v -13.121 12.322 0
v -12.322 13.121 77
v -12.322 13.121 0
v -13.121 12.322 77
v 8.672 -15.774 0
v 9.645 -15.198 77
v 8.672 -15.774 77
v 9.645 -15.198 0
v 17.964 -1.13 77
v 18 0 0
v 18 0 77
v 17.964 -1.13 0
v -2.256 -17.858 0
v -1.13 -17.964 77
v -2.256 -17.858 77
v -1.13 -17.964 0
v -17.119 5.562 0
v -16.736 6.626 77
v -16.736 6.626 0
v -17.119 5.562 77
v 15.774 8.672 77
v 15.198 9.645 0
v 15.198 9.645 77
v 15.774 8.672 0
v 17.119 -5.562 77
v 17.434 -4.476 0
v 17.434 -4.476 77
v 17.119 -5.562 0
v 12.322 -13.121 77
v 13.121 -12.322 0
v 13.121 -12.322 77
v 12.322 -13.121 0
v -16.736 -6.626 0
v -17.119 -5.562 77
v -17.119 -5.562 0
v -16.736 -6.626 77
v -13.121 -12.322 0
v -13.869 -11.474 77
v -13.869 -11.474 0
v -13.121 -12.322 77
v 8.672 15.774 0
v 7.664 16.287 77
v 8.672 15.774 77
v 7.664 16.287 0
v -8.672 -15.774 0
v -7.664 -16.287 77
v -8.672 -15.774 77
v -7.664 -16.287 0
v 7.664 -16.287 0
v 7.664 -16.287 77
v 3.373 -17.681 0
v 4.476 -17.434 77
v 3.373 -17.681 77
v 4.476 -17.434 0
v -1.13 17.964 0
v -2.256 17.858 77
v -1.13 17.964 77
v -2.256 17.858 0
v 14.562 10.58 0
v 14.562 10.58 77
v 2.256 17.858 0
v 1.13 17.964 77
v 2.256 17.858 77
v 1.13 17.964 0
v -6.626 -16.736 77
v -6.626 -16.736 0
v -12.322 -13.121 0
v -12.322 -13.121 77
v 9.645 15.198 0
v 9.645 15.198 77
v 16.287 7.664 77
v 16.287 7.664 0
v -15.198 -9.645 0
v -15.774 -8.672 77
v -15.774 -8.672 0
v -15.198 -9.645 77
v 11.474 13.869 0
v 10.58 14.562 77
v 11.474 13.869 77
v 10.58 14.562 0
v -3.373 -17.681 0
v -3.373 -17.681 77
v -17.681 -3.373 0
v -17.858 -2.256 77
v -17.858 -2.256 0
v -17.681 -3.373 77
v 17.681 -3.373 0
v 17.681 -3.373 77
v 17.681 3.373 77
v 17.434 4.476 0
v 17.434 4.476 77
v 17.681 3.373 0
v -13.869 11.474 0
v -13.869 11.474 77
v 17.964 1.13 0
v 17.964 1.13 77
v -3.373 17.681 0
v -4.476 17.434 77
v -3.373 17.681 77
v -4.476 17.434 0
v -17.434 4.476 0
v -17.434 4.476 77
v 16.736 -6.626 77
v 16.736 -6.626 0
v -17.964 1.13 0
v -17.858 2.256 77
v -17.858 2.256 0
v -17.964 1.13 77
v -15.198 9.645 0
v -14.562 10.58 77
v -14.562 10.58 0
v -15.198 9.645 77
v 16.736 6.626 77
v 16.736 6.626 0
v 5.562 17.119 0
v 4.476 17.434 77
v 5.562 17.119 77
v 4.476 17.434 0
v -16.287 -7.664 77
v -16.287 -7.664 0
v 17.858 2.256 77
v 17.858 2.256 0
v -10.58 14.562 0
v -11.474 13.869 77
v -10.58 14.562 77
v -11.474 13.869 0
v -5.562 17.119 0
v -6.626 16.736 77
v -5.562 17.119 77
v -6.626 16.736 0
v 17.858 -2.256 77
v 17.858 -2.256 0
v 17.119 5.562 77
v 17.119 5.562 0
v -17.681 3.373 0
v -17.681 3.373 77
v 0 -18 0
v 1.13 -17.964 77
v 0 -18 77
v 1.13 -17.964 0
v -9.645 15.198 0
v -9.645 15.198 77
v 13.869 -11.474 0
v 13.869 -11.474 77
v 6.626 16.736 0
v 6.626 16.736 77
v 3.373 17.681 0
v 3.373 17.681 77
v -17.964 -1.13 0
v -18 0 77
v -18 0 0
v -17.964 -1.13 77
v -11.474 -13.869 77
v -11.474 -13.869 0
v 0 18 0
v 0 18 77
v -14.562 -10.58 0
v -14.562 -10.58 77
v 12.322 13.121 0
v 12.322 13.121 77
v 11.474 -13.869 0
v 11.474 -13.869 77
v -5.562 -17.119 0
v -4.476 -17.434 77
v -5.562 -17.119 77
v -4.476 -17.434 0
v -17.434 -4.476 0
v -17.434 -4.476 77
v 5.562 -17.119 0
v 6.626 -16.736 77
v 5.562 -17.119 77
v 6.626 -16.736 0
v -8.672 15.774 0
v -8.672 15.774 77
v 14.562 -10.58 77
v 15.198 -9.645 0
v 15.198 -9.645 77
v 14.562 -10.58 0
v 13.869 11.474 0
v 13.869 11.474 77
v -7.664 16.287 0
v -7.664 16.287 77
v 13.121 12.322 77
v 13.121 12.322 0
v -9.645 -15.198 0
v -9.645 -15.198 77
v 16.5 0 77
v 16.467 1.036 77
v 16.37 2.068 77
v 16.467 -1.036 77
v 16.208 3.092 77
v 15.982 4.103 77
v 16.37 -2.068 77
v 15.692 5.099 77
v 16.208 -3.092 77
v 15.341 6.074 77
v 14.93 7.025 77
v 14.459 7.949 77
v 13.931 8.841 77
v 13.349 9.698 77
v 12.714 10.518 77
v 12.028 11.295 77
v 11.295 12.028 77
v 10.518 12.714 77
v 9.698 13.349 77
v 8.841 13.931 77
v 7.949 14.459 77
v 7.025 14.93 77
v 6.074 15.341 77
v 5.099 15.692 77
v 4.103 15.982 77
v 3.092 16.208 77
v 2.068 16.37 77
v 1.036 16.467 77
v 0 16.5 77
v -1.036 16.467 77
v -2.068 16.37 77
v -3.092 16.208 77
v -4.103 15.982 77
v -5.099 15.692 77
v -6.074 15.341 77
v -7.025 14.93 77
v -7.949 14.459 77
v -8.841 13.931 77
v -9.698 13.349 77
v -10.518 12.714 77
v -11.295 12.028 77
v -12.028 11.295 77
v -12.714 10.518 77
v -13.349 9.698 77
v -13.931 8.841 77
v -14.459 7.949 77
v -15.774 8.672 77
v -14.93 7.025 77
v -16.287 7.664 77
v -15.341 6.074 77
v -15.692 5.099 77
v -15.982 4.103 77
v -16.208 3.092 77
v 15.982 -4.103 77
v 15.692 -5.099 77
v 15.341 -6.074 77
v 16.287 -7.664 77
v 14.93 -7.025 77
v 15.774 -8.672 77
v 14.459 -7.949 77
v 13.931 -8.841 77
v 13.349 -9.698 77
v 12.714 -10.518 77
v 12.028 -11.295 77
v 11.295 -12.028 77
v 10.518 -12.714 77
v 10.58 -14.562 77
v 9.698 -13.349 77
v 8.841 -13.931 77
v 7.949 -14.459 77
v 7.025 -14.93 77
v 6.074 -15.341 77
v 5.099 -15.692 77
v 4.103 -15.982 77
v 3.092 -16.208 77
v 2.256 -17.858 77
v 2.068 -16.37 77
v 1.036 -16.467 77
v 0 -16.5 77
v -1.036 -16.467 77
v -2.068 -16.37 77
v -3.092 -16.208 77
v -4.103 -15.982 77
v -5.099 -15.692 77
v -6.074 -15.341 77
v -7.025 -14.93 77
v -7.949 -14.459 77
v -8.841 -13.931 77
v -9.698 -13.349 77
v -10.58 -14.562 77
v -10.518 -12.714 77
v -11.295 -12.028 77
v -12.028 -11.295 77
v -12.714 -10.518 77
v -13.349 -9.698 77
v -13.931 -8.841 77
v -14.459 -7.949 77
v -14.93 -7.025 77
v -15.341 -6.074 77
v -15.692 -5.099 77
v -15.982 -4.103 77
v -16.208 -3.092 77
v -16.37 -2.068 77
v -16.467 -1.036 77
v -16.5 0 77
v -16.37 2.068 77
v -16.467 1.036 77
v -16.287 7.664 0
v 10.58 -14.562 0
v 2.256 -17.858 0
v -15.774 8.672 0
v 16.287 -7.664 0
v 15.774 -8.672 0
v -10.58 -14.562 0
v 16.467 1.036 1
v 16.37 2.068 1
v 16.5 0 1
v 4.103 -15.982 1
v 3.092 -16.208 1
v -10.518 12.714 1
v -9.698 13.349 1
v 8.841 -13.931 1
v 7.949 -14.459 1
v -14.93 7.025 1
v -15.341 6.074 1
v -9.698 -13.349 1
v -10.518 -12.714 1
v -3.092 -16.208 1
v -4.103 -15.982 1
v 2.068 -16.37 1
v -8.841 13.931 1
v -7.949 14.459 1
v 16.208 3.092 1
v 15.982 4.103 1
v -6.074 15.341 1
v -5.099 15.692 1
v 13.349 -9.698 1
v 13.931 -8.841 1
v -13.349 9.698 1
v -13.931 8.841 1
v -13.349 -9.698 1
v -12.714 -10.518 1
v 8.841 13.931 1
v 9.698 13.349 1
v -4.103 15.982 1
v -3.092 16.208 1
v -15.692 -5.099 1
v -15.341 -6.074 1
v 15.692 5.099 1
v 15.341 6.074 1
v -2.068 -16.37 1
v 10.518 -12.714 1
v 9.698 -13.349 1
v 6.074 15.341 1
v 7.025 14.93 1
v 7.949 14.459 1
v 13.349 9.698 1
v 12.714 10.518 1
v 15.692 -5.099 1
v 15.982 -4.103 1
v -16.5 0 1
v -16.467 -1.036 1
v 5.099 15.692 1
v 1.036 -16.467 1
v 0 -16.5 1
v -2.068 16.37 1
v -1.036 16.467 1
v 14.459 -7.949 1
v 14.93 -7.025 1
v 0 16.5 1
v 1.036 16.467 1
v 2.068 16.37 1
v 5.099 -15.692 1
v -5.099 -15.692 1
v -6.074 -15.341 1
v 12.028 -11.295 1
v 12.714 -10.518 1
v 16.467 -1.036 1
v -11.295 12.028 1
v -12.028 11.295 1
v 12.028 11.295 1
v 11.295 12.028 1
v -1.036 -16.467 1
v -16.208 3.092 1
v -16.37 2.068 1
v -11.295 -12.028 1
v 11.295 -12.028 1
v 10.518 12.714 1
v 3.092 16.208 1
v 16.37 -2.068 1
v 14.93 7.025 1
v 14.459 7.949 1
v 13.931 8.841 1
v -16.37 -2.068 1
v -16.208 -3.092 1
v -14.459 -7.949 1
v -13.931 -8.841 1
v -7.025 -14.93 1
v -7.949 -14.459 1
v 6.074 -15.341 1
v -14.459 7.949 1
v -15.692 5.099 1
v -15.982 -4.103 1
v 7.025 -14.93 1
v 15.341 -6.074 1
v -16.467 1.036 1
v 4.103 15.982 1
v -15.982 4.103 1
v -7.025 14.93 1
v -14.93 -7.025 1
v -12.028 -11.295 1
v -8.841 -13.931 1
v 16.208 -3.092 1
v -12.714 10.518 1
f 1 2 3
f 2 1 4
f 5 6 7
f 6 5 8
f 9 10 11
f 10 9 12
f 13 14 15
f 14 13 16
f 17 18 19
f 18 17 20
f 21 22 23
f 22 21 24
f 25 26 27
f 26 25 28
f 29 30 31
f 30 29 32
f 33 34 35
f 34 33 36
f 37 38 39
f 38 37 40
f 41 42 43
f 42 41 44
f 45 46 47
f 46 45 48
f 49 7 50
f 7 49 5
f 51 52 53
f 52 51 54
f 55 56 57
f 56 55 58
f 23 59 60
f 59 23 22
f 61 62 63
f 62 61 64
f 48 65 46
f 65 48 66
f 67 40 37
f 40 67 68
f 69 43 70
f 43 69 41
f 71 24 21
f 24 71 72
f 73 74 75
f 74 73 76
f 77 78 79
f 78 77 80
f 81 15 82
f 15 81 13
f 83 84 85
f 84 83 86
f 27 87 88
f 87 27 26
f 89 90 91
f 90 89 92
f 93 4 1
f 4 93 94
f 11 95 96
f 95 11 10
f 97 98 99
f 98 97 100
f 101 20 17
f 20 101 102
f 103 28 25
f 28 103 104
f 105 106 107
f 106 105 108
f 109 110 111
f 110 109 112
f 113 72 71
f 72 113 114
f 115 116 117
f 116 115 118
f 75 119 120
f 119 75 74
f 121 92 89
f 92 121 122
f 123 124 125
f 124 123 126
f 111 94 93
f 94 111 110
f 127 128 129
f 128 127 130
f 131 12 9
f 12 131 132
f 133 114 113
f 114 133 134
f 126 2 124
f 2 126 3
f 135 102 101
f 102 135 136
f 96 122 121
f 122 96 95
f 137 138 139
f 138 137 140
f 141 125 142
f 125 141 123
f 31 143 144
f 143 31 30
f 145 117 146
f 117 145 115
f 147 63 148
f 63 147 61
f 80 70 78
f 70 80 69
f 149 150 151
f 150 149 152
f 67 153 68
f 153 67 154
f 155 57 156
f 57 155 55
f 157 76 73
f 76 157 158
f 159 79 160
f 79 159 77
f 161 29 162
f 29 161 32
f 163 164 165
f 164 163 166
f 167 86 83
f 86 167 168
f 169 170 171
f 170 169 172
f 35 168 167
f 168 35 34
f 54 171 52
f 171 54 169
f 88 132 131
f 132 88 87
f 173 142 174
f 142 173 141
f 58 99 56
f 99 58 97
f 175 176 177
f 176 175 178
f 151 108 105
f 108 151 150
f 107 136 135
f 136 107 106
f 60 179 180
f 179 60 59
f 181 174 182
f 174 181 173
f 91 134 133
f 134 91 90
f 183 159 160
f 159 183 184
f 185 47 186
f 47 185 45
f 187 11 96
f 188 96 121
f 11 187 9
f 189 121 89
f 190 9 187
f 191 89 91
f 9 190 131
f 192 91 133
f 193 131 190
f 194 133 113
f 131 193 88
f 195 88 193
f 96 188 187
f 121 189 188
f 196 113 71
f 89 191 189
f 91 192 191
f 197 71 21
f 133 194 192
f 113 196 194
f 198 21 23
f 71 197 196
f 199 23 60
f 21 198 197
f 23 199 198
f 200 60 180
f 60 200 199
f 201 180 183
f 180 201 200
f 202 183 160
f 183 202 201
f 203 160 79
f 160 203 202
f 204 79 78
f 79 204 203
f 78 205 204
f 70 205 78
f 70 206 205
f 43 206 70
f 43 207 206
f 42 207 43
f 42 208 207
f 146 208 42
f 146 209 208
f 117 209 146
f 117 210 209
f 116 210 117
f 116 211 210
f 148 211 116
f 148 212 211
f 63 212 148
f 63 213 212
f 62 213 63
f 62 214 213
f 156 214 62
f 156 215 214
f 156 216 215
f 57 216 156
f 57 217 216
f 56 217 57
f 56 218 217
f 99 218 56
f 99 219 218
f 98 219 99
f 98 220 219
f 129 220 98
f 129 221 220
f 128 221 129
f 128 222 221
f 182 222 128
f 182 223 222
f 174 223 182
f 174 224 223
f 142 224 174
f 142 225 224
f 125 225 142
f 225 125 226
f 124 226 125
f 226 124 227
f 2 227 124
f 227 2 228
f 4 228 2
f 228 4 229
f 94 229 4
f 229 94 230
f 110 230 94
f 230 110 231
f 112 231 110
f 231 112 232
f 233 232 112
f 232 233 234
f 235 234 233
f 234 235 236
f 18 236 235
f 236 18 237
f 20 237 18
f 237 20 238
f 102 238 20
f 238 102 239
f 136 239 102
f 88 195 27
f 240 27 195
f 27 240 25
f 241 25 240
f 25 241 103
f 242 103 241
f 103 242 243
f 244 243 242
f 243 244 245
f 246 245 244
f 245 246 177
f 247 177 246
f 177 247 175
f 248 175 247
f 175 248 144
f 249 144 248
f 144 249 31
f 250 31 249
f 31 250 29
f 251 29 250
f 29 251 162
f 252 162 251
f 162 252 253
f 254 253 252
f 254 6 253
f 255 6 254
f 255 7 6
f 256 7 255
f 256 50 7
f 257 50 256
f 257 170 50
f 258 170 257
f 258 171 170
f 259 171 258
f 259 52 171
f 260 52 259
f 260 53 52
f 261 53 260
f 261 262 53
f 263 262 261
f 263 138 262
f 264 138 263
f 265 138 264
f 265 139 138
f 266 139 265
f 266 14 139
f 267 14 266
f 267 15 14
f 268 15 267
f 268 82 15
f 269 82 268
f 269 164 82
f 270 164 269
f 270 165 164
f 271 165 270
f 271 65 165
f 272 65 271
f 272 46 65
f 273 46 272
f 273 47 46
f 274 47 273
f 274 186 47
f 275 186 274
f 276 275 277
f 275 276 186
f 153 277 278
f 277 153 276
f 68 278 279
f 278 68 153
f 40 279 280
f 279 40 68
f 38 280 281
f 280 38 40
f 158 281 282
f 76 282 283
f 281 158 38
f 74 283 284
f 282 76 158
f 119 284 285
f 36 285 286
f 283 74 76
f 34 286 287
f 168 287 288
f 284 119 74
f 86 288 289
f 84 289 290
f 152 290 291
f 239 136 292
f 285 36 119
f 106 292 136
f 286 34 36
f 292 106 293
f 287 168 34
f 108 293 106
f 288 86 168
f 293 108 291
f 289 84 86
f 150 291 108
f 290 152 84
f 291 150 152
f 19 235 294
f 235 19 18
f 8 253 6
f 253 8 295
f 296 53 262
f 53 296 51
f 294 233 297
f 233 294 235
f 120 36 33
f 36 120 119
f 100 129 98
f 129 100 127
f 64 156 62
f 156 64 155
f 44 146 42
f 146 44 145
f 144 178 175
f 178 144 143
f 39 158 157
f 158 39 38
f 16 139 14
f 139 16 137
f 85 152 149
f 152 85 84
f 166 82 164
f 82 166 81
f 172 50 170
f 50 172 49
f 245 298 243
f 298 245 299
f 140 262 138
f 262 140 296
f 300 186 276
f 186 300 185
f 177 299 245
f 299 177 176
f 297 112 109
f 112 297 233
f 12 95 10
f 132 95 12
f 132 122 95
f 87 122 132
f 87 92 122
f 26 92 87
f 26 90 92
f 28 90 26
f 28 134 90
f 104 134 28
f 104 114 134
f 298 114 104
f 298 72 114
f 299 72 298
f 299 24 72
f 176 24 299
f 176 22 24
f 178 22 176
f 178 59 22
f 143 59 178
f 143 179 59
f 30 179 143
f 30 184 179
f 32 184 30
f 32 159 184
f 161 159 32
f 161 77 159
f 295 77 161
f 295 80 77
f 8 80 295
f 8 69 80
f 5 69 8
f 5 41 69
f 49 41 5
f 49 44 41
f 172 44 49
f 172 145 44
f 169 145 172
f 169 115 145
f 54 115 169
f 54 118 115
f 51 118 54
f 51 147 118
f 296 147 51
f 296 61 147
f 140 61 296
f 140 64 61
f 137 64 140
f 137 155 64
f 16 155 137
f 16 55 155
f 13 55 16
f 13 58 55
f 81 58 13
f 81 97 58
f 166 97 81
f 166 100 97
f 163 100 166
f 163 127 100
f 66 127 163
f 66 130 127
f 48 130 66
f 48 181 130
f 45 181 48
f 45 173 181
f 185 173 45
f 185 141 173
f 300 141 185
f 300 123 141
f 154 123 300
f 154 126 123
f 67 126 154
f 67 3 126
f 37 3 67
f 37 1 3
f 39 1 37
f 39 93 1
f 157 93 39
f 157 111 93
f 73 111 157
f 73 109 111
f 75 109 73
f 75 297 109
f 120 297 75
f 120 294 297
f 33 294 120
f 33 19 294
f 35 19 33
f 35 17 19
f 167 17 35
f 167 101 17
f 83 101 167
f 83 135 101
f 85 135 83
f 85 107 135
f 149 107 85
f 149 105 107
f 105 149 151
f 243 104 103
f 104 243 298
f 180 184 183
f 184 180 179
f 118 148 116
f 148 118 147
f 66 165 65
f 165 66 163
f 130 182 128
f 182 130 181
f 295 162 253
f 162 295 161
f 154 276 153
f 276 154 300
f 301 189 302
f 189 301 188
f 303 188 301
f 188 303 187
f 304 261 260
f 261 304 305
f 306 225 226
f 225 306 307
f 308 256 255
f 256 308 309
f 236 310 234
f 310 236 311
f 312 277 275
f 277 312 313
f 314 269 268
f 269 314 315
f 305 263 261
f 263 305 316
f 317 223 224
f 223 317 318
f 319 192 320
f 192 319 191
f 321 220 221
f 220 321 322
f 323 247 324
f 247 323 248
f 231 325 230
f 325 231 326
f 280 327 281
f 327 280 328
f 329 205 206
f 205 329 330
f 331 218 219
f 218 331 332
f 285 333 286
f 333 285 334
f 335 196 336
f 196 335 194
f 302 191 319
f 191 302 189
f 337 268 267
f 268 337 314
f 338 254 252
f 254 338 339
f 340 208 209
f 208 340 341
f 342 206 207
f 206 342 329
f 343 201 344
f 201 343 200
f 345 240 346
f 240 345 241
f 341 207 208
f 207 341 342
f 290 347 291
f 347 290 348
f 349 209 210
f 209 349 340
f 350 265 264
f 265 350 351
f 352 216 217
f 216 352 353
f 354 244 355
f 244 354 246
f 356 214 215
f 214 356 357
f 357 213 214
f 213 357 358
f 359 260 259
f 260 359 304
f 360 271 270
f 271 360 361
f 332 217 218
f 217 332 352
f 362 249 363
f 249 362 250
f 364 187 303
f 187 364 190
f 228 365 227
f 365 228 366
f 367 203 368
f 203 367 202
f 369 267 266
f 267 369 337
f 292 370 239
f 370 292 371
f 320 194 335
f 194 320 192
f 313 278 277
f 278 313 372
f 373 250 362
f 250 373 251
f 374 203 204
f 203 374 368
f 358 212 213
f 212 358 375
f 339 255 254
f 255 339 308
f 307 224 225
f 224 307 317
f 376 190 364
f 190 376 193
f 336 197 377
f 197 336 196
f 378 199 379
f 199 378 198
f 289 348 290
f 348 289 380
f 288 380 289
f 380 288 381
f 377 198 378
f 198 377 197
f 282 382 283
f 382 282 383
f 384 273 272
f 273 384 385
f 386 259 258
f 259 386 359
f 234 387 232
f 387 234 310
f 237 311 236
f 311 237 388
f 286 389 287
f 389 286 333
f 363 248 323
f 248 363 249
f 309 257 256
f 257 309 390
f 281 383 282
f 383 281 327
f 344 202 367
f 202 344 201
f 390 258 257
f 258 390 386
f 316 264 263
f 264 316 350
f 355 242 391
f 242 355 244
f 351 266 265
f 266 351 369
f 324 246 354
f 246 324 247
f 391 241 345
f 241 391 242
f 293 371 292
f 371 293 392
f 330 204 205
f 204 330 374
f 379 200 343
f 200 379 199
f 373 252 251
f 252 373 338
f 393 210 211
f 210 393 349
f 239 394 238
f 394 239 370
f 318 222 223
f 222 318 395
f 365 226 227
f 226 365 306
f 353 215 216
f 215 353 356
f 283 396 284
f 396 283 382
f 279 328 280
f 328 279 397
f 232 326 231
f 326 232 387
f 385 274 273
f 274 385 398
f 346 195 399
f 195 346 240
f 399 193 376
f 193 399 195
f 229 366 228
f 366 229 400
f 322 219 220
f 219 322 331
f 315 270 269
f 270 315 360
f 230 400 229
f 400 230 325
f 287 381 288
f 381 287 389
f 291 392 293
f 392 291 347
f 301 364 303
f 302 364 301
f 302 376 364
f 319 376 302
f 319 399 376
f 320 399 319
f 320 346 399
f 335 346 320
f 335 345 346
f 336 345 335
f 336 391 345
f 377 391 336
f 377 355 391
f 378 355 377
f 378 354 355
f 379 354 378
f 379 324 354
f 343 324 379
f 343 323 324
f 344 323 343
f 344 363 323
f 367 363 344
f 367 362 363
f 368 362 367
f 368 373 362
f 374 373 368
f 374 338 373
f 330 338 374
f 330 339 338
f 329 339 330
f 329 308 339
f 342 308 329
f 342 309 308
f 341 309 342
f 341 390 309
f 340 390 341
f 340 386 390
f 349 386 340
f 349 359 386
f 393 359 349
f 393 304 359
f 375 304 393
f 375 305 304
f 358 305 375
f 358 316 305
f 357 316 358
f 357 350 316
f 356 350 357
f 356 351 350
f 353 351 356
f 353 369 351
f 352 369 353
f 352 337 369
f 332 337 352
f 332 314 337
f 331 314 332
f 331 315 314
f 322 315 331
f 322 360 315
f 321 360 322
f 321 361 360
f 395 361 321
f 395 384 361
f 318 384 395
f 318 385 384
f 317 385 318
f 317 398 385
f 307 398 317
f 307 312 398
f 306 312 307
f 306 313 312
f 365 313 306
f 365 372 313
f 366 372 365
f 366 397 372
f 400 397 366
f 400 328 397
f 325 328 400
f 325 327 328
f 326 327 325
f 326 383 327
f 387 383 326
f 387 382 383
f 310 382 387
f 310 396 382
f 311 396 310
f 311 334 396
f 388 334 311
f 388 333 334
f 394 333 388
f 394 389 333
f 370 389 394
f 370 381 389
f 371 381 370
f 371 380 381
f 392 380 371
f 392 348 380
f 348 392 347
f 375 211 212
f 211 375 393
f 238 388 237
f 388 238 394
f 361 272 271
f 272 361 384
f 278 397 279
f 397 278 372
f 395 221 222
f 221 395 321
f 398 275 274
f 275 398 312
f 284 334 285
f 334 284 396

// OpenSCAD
// hold some qtips in a drawer

$fn=100;
difference() {
    cylinder(77,d=36);
    translate([0,0,1]) cylinder(77,d=33);
}
